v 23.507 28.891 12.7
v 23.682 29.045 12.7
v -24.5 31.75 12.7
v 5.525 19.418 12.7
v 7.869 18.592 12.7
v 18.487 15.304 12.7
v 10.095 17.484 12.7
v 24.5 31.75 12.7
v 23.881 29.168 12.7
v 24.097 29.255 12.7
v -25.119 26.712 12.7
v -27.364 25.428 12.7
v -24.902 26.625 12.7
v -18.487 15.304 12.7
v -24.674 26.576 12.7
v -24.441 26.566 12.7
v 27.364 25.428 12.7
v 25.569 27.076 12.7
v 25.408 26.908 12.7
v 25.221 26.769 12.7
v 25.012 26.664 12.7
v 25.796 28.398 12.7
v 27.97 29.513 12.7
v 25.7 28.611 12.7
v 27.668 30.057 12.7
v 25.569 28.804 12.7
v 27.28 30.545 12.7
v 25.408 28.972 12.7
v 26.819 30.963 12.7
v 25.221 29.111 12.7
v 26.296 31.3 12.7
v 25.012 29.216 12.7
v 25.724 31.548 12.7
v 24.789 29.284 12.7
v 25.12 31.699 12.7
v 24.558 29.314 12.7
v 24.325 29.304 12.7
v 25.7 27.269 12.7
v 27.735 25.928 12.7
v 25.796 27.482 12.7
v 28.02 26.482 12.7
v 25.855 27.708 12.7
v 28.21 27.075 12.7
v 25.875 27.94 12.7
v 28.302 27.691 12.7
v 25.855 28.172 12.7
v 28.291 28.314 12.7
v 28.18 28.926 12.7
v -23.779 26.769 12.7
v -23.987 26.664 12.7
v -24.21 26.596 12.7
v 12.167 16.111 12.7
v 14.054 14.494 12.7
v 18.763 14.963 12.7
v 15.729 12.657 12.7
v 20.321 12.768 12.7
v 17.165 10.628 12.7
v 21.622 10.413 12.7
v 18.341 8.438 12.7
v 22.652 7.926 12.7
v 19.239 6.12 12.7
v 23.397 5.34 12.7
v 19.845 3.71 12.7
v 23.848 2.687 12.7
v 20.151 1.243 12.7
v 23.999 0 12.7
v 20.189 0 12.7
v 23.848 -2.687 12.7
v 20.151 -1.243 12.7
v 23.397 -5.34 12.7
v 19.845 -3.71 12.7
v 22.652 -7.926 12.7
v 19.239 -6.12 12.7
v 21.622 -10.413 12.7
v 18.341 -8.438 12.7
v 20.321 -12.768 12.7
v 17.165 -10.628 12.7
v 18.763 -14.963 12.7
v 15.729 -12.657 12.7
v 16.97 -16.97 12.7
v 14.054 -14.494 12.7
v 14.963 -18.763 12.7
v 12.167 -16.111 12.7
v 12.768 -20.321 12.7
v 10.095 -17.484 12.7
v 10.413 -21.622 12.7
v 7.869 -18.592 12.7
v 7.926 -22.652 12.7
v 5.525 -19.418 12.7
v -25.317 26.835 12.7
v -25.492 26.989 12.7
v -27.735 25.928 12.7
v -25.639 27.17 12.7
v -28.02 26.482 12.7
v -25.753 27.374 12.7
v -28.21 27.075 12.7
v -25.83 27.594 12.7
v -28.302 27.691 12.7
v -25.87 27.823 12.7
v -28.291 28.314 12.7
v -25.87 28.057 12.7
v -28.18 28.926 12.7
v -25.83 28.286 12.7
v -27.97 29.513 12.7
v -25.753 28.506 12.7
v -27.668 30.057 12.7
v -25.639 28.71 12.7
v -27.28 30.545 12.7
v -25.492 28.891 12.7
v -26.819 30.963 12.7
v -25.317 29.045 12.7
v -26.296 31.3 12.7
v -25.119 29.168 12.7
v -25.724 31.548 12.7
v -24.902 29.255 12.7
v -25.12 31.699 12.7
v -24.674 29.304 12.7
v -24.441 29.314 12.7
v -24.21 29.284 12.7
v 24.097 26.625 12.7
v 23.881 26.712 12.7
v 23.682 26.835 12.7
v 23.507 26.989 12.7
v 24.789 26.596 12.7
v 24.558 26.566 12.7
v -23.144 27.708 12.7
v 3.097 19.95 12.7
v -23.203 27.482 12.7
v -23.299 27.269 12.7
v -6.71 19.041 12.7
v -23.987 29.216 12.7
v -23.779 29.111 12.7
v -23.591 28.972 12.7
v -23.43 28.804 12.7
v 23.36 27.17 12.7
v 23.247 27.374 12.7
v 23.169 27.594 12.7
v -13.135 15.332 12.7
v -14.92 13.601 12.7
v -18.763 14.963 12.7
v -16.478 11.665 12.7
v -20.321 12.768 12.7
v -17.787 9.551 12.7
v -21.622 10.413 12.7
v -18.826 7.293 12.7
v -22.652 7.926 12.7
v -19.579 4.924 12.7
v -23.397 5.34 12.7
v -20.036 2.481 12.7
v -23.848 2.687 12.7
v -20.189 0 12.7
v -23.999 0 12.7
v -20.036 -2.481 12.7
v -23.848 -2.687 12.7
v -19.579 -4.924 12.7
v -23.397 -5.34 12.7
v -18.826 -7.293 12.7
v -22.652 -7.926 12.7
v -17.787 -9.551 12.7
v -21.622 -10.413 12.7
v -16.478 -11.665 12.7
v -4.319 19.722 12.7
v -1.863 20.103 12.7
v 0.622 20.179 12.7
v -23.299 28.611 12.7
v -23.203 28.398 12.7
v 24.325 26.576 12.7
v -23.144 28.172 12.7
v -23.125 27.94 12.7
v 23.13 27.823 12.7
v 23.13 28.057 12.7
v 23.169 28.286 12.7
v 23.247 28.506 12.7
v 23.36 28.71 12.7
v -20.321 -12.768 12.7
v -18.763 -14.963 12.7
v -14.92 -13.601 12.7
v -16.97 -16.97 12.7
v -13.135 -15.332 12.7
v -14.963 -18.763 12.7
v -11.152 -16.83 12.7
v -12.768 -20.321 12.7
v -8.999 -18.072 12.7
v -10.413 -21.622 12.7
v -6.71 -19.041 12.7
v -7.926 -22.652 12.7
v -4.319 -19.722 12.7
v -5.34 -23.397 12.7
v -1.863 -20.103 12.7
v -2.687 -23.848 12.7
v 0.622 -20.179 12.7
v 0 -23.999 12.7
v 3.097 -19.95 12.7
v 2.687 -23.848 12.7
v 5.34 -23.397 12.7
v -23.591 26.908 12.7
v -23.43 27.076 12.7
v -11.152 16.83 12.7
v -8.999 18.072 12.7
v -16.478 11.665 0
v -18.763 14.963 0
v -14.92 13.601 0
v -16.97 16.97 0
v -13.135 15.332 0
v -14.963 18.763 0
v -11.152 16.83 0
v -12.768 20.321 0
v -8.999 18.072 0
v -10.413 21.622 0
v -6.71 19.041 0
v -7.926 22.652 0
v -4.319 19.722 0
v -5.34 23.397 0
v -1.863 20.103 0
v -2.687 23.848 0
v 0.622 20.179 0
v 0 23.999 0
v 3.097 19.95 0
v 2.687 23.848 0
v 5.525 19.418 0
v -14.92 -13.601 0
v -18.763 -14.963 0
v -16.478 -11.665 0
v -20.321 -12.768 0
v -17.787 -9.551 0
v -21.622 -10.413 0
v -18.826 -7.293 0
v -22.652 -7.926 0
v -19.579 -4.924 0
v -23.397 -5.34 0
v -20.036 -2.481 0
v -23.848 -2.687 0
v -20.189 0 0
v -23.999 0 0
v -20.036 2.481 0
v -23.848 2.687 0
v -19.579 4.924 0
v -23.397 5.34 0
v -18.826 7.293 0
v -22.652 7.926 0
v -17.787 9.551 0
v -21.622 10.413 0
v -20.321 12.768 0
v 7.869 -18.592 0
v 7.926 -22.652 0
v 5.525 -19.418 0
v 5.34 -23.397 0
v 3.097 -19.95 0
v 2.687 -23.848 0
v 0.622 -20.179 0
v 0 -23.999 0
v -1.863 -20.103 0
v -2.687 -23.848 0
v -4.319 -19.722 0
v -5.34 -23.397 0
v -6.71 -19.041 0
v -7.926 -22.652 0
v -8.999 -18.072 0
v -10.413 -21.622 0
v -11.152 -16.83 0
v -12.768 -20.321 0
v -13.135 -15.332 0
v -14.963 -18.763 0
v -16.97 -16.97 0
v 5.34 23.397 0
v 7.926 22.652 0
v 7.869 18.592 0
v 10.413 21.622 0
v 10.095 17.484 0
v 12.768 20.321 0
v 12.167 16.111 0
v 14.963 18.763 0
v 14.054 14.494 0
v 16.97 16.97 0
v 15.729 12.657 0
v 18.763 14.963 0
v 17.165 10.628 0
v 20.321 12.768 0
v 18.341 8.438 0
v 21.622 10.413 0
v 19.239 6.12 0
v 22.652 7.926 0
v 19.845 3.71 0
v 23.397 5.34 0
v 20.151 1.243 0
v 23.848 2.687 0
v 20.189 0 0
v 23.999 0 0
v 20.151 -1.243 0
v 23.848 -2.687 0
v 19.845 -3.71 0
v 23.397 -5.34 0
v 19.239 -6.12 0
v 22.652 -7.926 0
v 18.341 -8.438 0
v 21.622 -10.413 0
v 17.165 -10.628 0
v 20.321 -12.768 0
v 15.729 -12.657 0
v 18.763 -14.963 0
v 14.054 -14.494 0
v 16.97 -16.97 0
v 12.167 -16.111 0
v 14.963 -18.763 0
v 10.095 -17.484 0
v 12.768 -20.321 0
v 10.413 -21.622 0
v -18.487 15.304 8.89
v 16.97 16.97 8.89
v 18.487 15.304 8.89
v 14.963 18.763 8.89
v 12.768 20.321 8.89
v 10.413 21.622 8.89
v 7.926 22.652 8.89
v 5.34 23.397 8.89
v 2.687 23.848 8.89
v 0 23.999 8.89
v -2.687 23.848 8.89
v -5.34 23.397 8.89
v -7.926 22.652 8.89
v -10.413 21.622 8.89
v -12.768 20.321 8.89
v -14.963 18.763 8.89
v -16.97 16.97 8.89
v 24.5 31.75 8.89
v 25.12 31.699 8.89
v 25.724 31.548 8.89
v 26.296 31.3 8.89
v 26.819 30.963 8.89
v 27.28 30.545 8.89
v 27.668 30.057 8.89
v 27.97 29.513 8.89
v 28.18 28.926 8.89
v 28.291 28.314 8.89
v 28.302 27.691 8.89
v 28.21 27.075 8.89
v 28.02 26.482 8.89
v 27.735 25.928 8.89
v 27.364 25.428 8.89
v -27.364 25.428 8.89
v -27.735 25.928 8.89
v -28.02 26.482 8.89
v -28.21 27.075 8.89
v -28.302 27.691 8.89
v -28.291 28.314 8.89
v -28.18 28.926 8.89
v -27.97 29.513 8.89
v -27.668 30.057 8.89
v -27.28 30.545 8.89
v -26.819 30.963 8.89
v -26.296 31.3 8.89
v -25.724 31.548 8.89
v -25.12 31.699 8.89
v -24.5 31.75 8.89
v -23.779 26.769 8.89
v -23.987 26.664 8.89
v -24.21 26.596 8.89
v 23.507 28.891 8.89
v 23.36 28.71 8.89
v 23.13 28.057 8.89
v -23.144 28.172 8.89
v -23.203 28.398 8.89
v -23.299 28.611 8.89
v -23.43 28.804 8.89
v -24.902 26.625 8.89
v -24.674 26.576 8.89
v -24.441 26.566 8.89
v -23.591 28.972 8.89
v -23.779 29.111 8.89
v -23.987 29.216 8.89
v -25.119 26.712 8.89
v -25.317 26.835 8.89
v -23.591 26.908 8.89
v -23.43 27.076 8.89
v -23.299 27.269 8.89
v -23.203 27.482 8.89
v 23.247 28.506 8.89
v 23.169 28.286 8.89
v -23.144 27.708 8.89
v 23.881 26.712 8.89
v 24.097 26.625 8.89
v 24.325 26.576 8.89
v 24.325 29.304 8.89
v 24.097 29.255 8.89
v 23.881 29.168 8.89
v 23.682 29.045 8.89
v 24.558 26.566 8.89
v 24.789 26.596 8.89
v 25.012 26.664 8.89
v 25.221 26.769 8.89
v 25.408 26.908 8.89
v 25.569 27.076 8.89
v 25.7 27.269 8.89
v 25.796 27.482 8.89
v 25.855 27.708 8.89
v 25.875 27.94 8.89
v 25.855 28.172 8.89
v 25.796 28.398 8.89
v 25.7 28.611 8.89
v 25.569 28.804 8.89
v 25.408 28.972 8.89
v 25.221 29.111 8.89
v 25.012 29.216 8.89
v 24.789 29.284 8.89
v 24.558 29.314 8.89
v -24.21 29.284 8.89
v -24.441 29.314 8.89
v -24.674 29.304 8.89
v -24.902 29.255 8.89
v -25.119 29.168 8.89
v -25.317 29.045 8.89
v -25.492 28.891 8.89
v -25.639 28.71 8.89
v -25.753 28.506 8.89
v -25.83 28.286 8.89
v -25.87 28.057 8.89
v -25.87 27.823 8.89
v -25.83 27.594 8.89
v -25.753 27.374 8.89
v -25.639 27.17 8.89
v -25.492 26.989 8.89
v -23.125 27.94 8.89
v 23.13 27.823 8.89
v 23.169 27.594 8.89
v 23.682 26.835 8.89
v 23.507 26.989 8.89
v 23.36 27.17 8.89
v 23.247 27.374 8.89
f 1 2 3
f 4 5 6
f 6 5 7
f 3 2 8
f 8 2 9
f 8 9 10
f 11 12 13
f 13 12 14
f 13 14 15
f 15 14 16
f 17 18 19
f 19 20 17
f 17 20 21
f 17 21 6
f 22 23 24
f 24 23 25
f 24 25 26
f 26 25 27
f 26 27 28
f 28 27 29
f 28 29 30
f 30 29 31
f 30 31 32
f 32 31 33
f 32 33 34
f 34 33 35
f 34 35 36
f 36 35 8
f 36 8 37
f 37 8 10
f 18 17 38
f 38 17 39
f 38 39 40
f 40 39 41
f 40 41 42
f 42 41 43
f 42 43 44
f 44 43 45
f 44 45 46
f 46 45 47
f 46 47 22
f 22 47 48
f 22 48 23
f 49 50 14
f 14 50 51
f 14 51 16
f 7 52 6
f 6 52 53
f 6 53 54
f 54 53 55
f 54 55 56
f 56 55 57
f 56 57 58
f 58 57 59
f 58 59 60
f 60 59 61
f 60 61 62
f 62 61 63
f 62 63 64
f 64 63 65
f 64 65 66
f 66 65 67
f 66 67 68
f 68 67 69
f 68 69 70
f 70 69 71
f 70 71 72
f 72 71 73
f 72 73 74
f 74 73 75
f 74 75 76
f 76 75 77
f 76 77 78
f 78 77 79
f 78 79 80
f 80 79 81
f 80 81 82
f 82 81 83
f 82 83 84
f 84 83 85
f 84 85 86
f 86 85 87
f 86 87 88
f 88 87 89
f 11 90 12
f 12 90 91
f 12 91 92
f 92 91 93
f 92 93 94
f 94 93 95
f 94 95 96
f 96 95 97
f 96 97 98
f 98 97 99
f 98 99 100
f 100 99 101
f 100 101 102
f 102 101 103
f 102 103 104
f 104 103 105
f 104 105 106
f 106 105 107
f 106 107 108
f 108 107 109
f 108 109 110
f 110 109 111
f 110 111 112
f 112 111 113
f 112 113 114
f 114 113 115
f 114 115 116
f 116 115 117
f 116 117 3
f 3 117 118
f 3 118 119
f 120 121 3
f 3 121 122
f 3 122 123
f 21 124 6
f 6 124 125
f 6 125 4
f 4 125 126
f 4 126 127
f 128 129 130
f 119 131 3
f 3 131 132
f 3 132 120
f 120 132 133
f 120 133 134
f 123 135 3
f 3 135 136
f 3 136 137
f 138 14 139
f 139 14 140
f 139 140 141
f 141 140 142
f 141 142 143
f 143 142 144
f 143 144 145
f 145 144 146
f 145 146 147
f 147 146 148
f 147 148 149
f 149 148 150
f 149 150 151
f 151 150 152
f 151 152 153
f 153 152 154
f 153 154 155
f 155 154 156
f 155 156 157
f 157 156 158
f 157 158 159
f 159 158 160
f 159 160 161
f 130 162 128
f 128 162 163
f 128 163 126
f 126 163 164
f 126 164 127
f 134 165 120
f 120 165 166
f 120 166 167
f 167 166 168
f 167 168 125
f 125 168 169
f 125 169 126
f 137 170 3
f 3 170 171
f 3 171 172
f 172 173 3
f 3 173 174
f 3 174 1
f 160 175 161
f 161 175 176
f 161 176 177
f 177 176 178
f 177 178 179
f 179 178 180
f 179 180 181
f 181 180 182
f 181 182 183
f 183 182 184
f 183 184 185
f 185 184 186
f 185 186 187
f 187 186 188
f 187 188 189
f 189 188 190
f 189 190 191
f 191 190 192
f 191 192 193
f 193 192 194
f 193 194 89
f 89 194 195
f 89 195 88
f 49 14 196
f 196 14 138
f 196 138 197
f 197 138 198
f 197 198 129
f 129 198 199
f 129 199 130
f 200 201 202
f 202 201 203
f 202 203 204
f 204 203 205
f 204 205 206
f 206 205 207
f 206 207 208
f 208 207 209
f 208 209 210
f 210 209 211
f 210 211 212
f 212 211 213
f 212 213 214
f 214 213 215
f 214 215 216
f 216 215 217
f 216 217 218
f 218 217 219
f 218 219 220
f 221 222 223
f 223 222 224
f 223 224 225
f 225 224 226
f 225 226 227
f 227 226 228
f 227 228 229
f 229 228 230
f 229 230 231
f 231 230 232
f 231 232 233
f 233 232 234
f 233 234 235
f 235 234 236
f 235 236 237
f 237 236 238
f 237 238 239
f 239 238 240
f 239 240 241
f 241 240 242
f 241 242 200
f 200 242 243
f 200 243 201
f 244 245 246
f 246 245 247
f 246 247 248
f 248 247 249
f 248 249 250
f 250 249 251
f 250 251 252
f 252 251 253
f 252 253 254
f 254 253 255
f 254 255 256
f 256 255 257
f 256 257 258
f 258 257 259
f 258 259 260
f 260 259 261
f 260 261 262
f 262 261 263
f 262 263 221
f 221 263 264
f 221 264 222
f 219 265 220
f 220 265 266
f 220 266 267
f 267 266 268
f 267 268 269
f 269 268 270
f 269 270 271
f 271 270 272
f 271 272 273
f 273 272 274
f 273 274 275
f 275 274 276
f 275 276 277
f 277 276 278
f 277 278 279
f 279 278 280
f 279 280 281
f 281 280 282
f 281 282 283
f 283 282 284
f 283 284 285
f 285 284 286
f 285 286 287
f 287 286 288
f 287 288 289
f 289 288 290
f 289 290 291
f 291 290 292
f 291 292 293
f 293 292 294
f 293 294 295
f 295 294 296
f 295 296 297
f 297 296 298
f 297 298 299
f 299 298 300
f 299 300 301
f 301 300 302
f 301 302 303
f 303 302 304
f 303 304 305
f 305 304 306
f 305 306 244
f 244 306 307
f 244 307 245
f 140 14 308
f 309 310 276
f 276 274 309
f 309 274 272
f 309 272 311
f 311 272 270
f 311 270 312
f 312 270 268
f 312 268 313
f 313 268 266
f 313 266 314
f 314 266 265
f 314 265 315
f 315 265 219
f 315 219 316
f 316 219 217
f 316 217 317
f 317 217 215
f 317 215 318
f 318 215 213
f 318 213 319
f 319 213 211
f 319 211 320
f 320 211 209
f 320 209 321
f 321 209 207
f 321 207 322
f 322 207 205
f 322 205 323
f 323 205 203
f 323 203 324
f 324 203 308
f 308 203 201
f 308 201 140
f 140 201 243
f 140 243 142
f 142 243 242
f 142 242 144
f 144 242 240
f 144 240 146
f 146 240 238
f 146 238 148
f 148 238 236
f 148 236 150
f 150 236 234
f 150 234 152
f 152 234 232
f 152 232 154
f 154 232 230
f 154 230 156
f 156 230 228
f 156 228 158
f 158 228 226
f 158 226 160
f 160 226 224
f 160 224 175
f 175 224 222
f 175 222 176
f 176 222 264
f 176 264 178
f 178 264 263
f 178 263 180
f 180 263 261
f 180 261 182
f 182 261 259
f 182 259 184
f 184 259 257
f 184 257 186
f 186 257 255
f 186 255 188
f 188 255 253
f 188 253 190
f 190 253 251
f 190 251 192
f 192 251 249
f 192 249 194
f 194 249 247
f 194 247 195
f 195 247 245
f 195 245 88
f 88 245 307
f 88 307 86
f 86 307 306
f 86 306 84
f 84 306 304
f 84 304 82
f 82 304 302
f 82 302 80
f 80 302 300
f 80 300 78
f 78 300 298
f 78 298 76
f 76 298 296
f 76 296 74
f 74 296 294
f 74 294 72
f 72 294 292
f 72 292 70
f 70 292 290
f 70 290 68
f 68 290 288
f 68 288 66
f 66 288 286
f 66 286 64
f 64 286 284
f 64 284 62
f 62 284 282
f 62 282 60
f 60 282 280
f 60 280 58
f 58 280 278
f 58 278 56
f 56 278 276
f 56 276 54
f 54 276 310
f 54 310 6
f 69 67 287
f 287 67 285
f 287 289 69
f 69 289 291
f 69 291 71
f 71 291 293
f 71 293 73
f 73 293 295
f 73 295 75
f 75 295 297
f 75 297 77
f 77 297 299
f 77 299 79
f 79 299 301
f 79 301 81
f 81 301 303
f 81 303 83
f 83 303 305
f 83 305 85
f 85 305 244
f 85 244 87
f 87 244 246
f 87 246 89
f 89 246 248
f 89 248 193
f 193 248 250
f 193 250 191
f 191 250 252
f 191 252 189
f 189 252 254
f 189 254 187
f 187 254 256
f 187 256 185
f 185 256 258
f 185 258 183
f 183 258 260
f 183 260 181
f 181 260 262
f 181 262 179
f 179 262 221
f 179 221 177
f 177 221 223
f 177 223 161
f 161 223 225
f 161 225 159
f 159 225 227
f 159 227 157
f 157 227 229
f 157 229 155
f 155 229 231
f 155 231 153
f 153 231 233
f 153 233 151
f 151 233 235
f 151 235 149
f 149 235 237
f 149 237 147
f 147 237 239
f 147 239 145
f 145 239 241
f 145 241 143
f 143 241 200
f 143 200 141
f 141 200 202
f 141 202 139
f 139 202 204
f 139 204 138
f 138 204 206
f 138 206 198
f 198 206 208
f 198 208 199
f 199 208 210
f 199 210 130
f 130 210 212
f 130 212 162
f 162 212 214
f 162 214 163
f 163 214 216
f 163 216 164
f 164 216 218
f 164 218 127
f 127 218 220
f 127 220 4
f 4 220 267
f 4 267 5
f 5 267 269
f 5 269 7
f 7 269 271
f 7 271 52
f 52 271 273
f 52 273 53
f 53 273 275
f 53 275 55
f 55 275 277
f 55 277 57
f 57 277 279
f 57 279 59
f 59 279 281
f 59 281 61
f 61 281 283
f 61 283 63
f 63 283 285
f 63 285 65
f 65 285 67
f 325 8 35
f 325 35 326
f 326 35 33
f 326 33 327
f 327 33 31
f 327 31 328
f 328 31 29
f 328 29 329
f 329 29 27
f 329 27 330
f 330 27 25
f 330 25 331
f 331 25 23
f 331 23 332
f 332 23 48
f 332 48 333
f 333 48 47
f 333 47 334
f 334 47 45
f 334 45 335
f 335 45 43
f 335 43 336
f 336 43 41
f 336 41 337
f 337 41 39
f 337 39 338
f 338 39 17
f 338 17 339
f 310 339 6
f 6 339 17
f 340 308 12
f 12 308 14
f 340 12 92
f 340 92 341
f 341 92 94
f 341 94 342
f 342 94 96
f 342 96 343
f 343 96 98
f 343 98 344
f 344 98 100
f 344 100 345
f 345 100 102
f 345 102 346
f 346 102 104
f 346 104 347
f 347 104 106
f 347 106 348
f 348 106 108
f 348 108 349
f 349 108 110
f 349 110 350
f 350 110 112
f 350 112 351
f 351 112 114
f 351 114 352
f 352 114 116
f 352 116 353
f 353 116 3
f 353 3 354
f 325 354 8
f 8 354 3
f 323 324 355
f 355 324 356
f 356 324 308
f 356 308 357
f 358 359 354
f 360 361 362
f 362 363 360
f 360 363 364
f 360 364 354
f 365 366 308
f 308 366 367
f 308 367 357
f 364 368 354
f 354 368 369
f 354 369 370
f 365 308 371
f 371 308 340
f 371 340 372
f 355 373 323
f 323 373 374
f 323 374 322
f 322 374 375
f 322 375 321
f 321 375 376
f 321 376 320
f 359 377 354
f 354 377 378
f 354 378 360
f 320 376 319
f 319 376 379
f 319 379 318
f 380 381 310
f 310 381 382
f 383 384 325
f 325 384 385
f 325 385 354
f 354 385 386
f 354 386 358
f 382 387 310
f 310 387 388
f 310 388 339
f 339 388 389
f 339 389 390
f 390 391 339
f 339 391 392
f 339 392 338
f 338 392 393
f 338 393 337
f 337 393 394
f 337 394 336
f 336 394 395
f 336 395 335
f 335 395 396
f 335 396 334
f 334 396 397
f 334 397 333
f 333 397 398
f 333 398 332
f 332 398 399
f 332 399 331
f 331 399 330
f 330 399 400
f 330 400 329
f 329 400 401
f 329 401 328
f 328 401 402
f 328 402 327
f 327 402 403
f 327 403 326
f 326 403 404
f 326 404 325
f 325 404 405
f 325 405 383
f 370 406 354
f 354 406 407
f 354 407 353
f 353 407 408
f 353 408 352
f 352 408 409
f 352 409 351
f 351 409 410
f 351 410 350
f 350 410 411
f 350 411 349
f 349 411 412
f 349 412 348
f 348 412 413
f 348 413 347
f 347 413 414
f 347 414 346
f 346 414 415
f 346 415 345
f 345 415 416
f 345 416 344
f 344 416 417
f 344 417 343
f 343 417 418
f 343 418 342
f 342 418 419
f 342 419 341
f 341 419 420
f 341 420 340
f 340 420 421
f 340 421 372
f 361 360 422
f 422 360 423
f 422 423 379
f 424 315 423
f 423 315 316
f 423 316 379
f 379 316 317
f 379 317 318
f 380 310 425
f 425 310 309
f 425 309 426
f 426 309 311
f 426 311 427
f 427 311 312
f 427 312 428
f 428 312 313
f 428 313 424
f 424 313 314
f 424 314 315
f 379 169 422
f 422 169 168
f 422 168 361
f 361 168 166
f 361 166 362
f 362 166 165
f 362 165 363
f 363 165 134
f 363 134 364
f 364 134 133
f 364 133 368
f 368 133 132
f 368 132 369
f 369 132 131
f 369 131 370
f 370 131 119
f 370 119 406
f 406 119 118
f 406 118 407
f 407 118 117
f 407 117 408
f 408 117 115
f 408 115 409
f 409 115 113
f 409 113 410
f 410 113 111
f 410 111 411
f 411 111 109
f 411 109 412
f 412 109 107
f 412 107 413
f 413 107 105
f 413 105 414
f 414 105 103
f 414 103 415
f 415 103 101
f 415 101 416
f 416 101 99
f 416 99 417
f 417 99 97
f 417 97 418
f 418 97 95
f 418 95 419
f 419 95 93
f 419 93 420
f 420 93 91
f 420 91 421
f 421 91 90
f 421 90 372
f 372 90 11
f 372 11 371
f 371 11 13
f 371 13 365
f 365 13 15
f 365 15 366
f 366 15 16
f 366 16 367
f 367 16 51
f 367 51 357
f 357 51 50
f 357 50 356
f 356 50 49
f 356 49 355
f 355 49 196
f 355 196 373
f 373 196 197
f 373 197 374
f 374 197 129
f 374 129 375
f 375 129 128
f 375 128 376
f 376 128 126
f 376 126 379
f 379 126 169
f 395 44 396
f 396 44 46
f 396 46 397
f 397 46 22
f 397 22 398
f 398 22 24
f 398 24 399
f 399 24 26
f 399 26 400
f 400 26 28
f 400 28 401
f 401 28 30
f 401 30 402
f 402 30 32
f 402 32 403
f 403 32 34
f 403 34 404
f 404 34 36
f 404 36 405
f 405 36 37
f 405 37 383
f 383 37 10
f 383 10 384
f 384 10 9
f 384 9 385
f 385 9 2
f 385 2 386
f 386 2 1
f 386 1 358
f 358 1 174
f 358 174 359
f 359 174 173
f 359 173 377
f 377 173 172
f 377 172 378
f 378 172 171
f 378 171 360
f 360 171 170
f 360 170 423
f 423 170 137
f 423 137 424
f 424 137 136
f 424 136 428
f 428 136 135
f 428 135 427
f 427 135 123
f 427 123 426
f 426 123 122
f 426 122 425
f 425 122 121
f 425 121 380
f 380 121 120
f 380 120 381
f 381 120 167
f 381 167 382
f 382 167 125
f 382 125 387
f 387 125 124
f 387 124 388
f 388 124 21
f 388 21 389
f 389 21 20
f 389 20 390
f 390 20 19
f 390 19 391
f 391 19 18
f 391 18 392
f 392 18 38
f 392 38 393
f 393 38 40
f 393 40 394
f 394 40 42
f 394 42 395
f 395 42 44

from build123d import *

# Parameters (mm, degrees)
SKETCH1_R           = 23.999
SKETCH1_R_2         = 20.189
BOSS_EXTRUDE1_DEPTH = 12.7
SKETCH2_R           = 1.37499852
BOSS_EXTRUDE2_DEPTH = 3.81


with BuildPart() as part:
    # Sketch1 → Boss-Extrude1 (new body)
    with BuildSketch(Plane.XY):
        Circle(SKETCH1_R)
        Circle(SKETCH1_R_2, mode=Mode.SUBTRACT)
    extrude(amount=BOSS_EXTRUDE1_DEPTH)

    # Sketch2 → Boss-Extrude2 (add)
    with BuildSketch(Plane.XY.offset(12.7)):
        with BuildLine():
            Line((18.486532878, 15.303597719), (27.364357617, 25.428067959))
            ThreePointArc((27.364357617, 25.428067959), (27.970037037, 29.512520099), (24.499694037, 31.75))
            Line((24.499694037, 31.75), (-24.499694037, 31.75))
            ThreePointArc((-24.499694037, 31.75), (-27.970037037, 29.512520099), (-27.364357617, 25.428067959))
            Line((-27.364357617, 25.428067959), (-18.486532878, 15.303597719))
            ThreePointArc((-18.486532878, 15.303597719), (0, 23.999), (18.486532878, 15.303597719))
        make_face()
        with Locations((-24.499694037, 27.94)):
            Circle(SKETCH2_R, mode=Mode.SUBTRACT)
        with Locations((24.499694037, 27.94)):
            Circle(SKETCH2_R, mode=Mode.SUBTRACT)
    extrude(amount=-BOSS_EXTRUDE2_DEPTH)


solid = part.part
